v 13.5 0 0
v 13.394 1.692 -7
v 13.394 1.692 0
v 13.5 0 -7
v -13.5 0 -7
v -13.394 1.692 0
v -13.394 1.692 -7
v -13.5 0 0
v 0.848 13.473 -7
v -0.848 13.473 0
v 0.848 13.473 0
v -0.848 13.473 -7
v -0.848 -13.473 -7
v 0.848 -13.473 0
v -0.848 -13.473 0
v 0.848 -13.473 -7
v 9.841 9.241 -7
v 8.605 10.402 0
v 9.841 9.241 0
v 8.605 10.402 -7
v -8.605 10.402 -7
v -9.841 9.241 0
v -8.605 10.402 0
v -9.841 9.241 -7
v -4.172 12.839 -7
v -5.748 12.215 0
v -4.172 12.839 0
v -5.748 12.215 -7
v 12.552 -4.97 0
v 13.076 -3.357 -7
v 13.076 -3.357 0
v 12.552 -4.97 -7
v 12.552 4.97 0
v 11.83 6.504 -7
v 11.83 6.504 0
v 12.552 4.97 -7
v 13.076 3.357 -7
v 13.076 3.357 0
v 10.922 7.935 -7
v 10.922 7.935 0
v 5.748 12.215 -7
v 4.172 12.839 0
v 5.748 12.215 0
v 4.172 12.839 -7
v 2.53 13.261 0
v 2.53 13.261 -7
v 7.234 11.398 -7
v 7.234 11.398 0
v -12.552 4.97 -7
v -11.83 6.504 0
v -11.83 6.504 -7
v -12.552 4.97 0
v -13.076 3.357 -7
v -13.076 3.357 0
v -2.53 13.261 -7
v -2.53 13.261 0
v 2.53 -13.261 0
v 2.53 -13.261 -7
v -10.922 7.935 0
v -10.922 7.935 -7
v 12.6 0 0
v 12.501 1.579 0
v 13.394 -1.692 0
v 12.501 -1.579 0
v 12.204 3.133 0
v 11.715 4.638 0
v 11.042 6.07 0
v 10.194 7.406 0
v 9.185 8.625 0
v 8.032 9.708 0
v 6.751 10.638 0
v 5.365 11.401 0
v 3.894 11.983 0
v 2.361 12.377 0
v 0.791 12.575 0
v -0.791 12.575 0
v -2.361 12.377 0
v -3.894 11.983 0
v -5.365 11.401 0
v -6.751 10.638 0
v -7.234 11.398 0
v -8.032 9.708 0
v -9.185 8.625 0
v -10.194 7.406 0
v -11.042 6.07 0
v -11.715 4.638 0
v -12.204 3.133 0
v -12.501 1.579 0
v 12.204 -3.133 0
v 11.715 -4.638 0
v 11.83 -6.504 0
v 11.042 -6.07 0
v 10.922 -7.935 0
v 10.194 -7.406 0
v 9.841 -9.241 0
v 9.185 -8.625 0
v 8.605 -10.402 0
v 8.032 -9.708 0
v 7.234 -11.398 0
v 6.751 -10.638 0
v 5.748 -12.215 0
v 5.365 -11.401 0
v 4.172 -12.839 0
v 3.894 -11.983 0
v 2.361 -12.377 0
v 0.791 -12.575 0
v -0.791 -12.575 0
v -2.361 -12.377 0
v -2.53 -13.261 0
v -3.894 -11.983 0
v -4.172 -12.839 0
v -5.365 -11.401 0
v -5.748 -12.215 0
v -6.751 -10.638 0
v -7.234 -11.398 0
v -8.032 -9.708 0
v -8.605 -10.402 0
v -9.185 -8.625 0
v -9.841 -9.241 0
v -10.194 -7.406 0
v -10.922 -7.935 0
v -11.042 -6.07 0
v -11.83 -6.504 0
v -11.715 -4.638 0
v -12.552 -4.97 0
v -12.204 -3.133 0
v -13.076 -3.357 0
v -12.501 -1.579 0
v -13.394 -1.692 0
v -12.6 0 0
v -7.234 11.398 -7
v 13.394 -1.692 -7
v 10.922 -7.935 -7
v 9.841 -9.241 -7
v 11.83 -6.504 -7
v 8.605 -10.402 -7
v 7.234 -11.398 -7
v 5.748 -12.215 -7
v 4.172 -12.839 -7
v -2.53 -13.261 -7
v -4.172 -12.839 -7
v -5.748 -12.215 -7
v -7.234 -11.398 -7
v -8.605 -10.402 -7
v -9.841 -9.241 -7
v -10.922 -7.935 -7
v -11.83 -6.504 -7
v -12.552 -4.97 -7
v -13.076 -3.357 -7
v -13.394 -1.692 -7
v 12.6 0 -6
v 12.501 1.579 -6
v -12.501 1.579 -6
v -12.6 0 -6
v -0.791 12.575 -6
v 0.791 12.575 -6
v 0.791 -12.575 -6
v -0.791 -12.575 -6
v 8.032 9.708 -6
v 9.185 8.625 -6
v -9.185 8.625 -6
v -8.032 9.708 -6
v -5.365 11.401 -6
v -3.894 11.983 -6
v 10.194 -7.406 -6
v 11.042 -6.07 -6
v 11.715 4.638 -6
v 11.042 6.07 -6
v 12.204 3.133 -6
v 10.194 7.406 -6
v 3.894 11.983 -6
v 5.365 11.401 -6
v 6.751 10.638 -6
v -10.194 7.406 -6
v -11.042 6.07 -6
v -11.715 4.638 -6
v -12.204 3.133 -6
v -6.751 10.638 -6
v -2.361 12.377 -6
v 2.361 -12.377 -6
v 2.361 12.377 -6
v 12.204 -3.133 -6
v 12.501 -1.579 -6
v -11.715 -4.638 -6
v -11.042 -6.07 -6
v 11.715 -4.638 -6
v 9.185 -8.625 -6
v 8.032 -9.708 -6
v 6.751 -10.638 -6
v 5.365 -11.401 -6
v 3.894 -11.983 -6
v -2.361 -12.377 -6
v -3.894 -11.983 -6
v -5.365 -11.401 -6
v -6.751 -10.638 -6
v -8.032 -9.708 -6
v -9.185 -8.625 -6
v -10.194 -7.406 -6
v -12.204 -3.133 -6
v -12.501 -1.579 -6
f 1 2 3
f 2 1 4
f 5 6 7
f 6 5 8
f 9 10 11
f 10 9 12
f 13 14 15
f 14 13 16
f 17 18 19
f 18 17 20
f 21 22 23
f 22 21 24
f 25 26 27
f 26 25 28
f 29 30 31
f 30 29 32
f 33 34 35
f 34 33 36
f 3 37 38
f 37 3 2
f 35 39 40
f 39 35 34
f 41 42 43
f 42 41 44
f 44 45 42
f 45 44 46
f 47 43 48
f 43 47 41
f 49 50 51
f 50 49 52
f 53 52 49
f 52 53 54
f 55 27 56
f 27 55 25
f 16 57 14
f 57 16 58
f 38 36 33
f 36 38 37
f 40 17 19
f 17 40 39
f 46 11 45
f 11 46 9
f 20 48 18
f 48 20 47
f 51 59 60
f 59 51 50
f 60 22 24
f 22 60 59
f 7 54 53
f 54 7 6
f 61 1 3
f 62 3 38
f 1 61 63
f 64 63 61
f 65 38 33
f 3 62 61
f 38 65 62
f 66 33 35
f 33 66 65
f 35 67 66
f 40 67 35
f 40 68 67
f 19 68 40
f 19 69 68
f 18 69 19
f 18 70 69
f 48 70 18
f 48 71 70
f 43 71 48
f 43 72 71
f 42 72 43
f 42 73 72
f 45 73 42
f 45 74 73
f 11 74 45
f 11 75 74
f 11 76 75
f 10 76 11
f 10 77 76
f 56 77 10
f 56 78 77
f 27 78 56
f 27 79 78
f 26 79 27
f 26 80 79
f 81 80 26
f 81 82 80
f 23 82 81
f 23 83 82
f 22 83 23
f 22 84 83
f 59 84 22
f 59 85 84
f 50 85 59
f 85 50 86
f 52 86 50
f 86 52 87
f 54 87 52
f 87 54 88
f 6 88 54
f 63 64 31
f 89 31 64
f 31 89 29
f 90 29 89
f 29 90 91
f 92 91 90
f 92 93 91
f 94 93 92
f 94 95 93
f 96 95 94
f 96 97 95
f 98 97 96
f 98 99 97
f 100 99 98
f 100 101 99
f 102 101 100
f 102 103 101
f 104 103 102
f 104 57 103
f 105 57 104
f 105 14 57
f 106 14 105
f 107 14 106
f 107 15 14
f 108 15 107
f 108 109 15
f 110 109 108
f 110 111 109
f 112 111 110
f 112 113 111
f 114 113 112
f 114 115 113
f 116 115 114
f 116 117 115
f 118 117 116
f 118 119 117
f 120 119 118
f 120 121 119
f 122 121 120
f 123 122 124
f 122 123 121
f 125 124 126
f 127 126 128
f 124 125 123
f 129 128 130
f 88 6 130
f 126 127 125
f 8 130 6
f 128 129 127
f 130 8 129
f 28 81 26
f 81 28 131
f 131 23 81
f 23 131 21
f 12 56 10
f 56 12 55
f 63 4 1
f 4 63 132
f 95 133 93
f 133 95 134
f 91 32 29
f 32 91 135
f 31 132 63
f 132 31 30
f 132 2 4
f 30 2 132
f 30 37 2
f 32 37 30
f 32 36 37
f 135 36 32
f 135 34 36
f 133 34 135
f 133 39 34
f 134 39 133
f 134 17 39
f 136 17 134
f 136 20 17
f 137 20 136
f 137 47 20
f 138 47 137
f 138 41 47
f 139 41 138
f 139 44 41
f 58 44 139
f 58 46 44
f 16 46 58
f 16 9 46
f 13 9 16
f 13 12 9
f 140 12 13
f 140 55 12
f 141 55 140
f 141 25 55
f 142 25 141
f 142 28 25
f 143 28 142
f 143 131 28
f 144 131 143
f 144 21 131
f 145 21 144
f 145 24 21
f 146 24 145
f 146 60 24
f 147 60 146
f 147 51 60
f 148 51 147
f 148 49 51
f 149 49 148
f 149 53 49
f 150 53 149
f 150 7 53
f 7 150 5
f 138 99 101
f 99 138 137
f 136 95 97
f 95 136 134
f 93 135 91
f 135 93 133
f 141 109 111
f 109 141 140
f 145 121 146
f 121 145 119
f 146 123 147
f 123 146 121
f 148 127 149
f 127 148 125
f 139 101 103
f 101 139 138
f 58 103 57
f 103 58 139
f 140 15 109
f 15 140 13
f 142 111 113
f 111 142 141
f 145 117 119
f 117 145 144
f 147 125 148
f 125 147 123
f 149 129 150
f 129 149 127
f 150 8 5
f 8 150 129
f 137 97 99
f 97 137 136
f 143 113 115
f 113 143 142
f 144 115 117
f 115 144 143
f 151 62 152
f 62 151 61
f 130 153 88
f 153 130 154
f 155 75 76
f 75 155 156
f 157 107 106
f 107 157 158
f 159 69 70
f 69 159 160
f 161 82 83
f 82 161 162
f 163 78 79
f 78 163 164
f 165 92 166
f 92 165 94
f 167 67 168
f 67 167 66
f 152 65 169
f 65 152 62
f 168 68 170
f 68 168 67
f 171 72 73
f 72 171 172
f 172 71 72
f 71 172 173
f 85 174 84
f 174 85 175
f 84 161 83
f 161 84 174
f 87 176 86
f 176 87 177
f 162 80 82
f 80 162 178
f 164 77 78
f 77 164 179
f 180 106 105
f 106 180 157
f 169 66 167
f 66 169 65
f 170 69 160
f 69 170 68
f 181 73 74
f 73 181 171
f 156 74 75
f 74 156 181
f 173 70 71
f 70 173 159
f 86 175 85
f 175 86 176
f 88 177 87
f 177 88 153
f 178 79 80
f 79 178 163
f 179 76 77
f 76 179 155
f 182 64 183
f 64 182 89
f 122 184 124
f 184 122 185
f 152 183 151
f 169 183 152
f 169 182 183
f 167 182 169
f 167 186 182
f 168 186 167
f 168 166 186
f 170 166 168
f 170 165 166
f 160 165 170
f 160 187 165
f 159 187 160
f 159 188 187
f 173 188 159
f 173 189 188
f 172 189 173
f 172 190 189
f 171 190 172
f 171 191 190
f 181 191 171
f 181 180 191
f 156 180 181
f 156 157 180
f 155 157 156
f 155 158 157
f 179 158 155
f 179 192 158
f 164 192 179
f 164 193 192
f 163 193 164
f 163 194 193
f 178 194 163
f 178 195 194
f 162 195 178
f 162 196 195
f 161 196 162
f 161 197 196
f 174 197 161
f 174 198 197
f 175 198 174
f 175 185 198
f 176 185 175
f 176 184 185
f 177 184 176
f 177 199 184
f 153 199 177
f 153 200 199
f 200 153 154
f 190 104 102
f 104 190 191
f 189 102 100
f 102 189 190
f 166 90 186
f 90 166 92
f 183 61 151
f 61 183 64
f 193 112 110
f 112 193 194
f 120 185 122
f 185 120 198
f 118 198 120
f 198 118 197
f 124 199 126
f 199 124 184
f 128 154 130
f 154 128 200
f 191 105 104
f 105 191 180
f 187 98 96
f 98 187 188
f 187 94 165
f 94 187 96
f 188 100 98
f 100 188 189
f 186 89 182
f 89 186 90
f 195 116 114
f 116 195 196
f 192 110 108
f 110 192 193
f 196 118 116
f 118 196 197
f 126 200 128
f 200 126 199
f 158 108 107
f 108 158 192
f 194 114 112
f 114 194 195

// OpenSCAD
$fn = 50;


difference() {
	union() {
		translate(v = [0, 0, -7.0000000000]) {
			cylinder(h = 7, r = 13.5000000000);
		}
	}
	union() {
		#translate(v = [0, 0, -6.0000000000]) {
			cylinder(h = 6, r = 12.6000000000);
		}
	}
}
